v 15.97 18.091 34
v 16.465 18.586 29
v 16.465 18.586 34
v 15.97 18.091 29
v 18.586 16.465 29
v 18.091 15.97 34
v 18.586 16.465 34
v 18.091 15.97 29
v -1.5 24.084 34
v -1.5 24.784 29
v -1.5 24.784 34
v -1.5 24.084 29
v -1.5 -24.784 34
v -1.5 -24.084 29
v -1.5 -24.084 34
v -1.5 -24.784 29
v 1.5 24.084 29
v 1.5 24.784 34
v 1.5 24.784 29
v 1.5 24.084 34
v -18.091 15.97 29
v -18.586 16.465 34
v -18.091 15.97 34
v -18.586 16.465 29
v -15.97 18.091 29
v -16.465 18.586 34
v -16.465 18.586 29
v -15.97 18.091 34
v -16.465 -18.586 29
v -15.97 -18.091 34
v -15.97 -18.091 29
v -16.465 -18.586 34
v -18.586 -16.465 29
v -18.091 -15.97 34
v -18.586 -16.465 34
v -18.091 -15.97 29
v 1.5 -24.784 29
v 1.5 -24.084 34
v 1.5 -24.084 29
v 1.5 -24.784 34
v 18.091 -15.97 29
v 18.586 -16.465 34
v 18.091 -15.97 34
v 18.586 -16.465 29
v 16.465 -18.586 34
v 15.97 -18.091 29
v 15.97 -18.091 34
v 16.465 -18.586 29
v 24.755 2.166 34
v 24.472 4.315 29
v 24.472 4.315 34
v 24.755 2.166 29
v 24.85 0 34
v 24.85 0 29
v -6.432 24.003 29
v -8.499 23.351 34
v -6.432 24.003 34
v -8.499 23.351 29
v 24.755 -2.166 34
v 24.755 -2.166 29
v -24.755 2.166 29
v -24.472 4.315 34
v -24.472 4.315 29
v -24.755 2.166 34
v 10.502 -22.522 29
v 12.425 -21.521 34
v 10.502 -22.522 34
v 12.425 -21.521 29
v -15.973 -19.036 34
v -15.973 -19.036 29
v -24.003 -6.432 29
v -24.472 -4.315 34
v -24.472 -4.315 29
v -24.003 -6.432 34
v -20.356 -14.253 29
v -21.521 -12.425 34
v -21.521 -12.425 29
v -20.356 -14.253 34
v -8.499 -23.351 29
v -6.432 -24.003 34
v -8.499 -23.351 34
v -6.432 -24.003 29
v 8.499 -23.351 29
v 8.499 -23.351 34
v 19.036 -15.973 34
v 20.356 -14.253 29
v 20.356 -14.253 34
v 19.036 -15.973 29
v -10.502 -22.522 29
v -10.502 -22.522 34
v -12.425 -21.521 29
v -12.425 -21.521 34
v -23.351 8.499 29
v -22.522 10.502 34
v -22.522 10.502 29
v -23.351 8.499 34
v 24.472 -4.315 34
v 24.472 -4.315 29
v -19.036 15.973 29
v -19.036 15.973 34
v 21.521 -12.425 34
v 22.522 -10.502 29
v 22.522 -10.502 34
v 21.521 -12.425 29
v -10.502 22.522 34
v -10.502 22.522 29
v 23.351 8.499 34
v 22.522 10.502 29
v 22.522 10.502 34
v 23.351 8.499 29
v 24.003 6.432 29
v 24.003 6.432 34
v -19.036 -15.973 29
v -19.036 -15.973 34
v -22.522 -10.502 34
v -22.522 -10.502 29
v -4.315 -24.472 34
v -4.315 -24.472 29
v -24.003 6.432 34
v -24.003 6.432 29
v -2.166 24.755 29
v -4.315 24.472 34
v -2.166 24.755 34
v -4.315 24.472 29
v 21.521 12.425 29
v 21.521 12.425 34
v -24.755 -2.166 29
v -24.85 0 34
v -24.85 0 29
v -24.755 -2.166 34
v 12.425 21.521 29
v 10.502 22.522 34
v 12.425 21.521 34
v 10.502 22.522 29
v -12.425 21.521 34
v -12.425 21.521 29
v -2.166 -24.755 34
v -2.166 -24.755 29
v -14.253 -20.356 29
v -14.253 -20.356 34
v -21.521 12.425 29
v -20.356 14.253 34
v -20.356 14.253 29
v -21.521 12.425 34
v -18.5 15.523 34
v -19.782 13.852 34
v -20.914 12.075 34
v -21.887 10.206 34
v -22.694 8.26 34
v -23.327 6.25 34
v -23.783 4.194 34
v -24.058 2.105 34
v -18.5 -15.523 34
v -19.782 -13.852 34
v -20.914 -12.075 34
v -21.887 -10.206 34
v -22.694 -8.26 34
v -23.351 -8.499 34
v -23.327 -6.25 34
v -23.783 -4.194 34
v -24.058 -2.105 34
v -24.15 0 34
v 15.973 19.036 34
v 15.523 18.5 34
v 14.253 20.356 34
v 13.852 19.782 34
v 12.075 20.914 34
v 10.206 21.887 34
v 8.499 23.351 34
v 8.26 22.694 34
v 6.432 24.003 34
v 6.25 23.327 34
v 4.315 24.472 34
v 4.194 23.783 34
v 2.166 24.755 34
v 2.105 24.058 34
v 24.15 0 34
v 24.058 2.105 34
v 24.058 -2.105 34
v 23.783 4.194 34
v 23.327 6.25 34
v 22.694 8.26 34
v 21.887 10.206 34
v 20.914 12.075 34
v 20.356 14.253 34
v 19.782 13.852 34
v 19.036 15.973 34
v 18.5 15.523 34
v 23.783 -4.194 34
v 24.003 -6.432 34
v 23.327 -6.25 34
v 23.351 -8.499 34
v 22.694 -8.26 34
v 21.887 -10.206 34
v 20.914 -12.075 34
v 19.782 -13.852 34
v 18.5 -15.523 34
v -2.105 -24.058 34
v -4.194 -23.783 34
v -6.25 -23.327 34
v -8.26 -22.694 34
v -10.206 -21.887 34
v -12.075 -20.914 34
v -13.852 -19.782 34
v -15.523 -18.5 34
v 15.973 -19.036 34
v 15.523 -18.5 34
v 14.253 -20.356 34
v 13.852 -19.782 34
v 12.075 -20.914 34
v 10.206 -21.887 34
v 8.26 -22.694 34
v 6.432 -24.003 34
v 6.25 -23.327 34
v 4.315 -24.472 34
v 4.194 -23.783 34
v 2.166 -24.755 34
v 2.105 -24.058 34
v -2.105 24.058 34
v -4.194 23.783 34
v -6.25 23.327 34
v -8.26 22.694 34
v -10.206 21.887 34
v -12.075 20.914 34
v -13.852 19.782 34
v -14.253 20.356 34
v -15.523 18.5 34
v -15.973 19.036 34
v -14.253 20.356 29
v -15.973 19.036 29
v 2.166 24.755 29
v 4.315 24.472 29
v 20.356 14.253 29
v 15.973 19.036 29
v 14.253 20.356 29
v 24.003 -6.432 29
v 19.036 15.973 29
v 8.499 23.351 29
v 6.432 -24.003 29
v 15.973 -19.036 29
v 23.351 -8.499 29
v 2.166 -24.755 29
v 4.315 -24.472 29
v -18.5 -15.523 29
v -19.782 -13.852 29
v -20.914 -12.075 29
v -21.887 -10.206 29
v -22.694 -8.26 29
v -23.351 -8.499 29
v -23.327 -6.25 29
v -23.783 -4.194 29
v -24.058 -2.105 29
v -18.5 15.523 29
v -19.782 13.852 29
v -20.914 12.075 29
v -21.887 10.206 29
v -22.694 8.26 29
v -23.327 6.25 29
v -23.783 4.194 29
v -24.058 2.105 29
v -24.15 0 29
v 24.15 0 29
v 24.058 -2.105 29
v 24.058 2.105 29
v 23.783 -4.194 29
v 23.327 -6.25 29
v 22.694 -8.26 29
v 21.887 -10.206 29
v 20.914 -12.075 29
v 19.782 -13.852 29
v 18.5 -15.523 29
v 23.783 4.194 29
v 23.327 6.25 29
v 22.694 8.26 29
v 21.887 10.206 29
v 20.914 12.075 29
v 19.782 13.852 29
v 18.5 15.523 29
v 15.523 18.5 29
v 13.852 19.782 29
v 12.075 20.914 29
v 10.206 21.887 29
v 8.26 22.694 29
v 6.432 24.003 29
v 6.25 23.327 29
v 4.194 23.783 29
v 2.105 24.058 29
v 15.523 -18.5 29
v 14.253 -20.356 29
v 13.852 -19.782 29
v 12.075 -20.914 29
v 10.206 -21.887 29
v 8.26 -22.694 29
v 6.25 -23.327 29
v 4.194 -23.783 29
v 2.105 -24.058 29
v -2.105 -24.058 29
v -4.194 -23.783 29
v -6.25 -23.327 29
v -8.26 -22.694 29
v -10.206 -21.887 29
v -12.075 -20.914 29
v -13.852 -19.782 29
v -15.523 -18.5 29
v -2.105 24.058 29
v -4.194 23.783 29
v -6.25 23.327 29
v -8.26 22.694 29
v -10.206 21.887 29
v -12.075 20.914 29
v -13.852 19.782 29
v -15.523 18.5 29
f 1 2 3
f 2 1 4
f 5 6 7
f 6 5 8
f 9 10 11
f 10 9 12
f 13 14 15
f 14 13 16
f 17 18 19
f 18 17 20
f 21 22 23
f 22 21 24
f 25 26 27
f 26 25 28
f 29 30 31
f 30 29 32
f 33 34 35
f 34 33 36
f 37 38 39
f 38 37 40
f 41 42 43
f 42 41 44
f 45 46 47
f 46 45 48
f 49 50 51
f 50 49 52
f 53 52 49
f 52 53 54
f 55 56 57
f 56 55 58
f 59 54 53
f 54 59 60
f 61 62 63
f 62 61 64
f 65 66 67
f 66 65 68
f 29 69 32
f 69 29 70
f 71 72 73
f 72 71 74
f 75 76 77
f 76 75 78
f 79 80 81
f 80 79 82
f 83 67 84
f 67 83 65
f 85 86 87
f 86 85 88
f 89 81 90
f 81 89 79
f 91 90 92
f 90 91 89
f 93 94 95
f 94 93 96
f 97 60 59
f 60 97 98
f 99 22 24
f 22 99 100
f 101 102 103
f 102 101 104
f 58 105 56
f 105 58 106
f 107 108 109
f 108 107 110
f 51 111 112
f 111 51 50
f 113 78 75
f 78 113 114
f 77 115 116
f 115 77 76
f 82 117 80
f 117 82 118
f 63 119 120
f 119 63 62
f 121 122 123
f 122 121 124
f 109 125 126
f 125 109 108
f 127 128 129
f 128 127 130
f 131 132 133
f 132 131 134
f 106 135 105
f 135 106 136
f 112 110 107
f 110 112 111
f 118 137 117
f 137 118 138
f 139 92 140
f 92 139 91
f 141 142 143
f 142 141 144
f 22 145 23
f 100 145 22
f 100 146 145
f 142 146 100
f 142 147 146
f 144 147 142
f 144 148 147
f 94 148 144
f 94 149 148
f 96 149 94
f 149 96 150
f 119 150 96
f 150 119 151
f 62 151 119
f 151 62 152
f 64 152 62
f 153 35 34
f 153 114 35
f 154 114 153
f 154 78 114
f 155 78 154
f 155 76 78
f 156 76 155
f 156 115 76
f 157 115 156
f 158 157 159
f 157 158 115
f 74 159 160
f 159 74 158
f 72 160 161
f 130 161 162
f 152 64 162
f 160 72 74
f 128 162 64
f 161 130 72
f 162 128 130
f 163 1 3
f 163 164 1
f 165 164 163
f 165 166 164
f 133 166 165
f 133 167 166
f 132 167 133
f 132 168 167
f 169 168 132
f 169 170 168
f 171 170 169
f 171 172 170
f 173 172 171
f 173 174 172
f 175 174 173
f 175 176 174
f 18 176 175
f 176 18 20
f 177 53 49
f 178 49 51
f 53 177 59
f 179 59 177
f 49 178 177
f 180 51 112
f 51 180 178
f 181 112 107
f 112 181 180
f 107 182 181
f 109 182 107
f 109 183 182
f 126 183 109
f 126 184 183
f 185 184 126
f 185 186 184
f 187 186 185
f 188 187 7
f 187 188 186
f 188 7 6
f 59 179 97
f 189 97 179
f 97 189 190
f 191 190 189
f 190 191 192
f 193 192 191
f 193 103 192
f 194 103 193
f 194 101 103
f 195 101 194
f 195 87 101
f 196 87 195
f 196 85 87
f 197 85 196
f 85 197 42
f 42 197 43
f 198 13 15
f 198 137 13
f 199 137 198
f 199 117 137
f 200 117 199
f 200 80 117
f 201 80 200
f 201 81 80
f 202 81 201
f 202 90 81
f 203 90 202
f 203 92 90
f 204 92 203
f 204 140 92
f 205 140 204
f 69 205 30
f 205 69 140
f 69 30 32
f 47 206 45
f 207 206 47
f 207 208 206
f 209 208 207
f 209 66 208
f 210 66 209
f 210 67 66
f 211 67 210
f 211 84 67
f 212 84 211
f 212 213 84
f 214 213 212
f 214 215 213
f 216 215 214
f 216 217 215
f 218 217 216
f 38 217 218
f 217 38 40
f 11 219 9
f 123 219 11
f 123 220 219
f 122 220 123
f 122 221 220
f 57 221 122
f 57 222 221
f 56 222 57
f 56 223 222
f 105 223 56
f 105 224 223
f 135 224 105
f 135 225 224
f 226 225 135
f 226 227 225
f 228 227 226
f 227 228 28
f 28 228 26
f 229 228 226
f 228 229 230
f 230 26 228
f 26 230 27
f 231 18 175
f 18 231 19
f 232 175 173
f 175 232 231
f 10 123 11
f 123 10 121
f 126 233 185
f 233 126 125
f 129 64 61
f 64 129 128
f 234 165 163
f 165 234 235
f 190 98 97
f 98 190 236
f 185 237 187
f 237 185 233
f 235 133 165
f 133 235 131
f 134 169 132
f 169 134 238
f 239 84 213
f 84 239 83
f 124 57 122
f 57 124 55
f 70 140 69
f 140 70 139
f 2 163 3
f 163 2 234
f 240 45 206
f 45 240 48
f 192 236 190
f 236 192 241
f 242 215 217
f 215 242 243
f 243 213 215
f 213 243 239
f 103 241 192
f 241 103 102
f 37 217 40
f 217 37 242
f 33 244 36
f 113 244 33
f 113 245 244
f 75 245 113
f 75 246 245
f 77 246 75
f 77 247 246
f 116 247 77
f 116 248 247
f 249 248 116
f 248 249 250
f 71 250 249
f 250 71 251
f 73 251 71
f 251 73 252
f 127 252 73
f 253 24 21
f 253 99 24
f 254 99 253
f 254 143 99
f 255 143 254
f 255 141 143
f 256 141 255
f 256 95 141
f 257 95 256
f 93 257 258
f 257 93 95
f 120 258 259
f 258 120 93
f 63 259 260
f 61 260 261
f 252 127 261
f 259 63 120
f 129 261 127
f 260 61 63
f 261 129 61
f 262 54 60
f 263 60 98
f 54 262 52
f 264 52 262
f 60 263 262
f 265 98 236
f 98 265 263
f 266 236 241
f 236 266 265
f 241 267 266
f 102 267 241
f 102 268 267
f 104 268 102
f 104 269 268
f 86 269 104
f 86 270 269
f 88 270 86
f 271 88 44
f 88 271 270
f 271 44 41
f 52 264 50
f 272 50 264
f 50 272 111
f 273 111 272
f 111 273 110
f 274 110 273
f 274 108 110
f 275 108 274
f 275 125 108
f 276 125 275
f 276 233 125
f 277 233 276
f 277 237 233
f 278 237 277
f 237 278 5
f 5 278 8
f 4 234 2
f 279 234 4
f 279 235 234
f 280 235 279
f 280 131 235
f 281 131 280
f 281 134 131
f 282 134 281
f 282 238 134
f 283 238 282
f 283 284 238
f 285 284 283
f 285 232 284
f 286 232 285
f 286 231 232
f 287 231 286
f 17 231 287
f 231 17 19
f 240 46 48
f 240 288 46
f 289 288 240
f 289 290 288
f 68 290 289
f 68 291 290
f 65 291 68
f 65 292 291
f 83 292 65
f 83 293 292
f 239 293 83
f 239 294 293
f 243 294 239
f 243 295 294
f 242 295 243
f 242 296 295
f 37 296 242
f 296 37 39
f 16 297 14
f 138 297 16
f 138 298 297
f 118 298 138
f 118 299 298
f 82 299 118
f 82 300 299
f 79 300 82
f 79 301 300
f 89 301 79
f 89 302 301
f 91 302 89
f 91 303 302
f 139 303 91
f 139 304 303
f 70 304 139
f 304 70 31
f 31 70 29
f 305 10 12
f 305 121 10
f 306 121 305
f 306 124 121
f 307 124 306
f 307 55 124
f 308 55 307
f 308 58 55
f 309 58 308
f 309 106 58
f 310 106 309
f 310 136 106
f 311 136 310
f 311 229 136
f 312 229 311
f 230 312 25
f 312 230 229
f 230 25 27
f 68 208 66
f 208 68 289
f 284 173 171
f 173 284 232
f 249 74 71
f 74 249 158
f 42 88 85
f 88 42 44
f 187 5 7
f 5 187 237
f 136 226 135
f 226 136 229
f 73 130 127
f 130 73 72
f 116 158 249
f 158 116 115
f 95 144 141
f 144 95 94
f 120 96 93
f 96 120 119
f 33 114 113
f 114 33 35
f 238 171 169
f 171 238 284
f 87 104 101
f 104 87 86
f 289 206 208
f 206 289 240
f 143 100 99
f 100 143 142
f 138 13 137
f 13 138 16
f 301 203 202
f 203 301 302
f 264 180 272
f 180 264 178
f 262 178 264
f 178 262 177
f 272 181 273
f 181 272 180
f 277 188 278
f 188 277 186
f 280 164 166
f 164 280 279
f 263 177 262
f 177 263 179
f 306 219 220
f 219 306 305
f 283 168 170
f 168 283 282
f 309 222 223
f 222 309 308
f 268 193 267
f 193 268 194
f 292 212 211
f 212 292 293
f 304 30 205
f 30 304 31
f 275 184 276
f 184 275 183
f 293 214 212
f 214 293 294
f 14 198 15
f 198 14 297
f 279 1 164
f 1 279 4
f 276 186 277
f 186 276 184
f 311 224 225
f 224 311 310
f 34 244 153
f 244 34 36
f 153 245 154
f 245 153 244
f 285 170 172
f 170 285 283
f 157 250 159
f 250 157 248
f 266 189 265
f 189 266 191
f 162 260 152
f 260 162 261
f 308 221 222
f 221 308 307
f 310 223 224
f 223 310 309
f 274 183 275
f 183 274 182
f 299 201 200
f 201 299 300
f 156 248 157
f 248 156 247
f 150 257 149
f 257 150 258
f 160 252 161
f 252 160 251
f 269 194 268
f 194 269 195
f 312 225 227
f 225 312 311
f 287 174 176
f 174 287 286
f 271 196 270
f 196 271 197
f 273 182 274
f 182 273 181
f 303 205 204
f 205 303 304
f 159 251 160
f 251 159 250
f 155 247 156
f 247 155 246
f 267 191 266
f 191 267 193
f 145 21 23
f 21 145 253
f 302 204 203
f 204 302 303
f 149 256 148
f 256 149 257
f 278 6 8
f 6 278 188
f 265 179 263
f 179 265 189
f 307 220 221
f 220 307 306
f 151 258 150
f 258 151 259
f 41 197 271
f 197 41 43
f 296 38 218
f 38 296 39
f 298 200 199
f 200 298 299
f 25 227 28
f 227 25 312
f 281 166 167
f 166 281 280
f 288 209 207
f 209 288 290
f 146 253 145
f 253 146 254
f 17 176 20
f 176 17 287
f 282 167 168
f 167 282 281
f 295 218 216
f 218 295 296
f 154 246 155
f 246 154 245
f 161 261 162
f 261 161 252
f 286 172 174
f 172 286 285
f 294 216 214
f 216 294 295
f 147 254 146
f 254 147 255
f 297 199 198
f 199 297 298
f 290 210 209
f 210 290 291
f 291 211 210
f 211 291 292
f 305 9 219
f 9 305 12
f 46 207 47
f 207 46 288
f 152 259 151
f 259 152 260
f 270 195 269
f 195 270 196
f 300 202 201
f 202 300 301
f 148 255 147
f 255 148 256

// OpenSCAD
// file: comun.scad
// GolfCraft3D — Porta pelota y tees para la bolsa (diseño propio, 2 colores). Una pelota a presión en la jaula,
// 3 tees al costado y argolla para colgarlo de la bolsa o el carro con un mosquetón. Se imprime parado, sin soportes.
bola = 42.7;
alto = 34;
$fn = 72;
// main file
include <comun.scad>
translate([0, 0, alto - 5]) difference() { cylinder(d = bola + 7, h = 5); translate([0, 0, -1]) cylinder(d = bola + 5.6, h = 7); for (a = [45, 90, 135, 225, 270, 315]) rotate(a) translate([0, -1.5, -1]) cube([bola / 2 + 4, 3, 8]); }
